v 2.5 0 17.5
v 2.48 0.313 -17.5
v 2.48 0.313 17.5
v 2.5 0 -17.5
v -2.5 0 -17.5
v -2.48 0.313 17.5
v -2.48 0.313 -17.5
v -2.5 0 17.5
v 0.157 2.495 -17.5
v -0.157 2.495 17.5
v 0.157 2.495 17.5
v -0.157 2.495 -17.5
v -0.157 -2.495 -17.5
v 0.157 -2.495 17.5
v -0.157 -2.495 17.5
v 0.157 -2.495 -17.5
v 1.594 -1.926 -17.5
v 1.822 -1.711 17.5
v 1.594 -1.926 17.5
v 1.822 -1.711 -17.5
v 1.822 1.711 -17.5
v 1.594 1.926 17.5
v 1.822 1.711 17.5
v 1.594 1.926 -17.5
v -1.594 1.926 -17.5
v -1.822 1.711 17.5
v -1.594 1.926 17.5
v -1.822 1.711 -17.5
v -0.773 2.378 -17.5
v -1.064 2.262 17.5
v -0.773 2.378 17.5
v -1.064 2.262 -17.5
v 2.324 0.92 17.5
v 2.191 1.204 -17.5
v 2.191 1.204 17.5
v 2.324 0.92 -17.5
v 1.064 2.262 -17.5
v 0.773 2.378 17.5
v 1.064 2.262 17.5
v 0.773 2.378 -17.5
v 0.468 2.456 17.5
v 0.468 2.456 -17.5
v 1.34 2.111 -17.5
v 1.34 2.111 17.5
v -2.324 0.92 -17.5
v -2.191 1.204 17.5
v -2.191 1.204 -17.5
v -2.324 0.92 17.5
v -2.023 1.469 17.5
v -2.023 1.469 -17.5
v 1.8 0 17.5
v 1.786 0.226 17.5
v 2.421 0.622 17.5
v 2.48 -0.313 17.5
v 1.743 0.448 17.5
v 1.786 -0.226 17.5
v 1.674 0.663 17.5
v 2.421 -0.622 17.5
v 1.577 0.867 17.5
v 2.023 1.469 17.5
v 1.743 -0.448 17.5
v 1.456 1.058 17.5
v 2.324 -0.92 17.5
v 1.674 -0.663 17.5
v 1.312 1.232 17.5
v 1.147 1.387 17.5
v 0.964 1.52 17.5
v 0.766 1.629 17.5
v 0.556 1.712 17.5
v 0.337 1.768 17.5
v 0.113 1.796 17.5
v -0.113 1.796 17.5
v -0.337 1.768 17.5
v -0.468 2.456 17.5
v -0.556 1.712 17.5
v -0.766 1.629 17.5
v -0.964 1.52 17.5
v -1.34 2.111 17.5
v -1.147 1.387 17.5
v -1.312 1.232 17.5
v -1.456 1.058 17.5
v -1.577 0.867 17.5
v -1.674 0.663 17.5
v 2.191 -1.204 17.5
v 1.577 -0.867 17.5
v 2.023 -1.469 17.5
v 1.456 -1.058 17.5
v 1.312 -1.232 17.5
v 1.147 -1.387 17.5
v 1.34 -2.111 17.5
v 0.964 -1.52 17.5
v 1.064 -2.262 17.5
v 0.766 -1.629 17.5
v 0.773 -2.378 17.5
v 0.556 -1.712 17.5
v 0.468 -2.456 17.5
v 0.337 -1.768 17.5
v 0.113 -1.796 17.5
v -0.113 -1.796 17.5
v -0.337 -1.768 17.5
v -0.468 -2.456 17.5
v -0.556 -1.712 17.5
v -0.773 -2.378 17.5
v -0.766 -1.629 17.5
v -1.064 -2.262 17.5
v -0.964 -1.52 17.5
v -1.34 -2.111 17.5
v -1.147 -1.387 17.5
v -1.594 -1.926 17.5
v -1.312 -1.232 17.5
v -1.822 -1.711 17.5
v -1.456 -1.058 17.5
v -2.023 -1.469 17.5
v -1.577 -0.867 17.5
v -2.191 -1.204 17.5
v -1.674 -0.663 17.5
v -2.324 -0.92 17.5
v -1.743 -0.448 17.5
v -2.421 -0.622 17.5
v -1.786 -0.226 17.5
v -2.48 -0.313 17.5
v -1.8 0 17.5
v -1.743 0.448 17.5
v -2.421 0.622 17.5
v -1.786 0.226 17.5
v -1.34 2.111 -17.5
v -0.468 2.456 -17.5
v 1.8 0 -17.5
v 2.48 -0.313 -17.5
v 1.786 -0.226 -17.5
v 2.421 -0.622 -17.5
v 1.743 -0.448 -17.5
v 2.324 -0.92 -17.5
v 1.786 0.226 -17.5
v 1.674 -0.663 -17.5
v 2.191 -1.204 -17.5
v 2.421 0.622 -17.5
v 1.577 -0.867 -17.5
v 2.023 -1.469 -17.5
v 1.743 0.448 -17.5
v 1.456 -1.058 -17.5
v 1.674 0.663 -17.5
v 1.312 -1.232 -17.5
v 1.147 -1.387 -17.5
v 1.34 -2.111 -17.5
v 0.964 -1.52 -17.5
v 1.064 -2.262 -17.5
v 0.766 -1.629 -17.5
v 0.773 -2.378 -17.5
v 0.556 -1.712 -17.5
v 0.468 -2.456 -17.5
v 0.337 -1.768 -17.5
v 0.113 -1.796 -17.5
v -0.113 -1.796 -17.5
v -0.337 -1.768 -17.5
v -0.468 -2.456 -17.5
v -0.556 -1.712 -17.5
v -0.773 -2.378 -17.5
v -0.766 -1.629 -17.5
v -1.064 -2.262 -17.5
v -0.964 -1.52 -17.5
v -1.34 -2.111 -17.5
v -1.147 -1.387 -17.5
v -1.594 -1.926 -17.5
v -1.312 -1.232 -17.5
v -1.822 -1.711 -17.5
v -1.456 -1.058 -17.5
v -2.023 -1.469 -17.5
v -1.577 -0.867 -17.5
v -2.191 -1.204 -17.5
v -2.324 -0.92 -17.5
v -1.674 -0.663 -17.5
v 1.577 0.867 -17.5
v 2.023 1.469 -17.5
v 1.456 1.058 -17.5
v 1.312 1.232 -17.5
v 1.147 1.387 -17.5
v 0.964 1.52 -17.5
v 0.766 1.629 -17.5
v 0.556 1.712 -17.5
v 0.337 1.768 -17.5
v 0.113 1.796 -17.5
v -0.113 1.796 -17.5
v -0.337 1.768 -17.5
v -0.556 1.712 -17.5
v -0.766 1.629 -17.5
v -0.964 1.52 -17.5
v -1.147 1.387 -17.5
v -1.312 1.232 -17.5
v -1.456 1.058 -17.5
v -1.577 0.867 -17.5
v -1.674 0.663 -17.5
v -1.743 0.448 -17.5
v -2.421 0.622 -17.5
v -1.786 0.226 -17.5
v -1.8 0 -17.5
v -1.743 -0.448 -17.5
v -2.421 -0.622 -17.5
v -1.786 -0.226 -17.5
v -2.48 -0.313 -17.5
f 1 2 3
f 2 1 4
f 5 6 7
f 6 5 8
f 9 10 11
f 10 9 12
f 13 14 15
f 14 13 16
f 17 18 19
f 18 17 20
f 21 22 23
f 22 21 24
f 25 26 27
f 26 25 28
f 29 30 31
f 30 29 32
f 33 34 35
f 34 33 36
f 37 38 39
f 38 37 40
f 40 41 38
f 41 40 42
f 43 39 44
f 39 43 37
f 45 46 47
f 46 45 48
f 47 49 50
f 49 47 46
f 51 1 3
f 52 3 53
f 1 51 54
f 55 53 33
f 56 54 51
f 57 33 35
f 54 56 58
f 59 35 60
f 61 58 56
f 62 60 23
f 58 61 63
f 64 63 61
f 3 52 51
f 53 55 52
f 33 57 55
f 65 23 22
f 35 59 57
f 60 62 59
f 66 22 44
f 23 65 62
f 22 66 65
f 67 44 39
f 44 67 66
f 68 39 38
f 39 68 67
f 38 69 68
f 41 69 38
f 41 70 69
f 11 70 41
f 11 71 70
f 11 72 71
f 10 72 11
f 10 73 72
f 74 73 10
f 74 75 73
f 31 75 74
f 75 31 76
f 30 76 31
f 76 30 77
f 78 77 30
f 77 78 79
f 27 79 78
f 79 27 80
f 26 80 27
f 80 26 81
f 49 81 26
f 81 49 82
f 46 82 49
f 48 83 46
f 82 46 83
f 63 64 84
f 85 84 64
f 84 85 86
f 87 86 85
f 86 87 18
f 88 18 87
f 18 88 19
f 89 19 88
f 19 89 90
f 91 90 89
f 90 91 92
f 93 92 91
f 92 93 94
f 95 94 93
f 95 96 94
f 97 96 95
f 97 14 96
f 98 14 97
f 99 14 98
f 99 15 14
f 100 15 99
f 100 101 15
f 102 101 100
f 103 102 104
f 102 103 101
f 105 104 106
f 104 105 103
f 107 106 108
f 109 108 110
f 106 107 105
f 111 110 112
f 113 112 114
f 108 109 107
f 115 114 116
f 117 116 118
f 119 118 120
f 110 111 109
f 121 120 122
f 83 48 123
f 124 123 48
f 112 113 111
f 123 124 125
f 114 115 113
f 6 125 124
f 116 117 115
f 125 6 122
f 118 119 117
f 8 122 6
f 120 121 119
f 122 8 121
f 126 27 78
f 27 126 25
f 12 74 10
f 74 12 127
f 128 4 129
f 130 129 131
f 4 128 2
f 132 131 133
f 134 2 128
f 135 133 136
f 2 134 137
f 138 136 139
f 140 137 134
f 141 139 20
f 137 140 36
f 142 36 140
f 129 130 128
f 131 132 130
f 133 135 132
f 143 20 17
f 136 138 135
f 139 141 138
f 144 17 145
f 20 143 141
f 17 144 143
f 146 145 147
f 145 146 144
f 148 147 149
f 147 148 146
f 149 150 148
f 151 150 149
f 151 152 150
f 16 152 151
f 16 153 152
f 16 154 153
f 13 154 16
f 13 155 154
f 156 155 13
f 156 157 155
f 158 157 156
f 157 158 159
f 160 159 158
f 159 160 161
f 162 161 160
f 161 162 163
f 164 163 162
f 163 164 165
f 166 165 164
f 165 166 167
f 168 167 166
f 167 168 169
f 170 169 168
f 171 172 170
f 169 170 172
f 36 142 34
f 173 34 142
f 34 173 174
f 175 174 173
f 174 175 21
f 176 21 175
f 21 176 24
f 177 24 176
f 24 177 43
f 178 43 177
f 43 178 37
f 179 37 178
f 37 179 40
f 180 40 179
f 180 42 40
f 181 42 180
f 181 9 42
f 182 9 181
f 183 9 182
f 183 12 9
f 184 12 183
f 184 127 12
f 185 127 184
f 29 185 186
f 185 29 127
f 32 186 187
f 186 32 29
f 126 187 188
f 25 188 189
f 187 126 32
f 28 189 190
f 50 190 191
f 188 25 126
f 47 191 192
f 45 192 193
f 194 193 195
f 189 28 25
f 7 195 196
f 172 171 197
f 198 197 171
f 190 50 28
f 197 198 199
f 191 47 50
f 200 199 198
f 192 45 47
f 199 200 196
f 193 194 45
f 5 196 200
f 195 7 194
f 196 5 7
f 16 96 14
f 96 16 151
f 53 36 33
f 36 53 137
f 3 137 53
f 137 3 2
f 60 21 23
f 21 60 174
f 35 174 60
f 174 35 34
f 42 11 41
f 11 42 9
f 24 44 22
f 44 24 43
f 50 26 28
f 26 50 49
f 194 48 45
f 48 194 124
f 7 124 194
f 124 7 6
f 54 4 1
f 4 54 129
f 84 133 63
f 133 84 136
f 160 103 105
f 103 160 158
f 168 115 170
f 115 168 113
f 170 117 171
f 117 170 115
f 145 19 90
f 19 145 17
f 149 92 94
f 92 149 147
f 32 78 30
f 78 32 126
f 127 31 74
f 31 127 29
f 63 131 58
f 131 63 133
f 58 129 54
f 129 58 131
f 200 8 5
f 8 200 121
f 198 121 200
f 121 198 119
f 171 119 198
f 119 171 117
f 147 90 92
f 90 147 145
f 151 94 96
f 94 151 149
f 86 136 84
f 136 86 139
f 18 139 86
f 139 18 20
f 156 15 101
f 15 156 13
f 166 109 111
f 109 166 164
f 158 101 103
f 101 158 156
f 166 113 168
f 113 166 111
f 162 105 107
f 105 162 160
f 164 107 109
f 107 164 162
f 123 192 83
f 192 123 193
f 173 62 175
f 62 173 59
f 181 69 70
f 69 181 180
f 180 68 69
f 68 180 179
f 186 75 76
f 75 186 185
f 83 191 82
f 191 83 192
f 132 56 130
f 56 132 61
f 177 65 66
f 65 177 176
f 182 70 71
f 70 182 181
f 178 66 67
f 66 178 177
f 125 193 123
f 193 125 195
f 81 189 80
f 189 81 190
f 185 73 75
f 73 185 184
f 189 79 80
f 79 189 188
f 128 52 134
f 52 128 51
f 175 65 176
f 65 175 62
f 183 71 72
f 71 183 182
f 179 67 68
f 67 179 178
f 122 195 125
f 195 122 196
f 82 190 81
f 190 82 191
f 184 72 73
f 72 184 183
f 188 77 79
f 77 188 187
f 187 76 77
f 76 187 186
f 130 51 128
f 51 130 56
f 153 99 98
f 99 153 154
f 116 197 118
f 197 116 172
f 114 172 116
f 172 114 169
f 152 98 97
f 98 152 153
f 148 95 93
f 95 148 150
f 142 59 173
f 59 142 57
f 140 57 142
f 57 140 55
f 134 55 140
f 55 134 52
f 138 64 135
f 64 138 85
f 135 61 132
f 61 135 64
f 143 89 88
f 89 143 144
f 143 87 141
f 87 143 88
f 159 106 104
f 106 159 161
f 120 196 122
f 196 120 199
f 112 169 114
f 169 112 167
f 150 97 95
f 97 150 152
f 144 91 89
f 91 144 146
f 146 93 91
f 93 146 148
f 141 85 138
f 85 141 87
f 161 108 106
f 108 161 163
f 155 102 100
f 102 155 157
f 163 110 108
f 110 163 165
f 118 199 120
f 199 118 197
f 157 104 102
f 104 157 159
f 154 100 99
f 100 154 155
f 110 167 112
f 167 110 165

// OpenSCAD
$fn = 50;


difference() {
	union() {
		translate(v = [0, 0, -17.5000000000]) {
			cylinder(h = 35, r = 2.5000000000);
		}
	}
	union() {
		translate(v = [0, 0, -100.0000000000]) {
			cylinder(h = 200, r = 1.8000000000);
		}
	}
}
